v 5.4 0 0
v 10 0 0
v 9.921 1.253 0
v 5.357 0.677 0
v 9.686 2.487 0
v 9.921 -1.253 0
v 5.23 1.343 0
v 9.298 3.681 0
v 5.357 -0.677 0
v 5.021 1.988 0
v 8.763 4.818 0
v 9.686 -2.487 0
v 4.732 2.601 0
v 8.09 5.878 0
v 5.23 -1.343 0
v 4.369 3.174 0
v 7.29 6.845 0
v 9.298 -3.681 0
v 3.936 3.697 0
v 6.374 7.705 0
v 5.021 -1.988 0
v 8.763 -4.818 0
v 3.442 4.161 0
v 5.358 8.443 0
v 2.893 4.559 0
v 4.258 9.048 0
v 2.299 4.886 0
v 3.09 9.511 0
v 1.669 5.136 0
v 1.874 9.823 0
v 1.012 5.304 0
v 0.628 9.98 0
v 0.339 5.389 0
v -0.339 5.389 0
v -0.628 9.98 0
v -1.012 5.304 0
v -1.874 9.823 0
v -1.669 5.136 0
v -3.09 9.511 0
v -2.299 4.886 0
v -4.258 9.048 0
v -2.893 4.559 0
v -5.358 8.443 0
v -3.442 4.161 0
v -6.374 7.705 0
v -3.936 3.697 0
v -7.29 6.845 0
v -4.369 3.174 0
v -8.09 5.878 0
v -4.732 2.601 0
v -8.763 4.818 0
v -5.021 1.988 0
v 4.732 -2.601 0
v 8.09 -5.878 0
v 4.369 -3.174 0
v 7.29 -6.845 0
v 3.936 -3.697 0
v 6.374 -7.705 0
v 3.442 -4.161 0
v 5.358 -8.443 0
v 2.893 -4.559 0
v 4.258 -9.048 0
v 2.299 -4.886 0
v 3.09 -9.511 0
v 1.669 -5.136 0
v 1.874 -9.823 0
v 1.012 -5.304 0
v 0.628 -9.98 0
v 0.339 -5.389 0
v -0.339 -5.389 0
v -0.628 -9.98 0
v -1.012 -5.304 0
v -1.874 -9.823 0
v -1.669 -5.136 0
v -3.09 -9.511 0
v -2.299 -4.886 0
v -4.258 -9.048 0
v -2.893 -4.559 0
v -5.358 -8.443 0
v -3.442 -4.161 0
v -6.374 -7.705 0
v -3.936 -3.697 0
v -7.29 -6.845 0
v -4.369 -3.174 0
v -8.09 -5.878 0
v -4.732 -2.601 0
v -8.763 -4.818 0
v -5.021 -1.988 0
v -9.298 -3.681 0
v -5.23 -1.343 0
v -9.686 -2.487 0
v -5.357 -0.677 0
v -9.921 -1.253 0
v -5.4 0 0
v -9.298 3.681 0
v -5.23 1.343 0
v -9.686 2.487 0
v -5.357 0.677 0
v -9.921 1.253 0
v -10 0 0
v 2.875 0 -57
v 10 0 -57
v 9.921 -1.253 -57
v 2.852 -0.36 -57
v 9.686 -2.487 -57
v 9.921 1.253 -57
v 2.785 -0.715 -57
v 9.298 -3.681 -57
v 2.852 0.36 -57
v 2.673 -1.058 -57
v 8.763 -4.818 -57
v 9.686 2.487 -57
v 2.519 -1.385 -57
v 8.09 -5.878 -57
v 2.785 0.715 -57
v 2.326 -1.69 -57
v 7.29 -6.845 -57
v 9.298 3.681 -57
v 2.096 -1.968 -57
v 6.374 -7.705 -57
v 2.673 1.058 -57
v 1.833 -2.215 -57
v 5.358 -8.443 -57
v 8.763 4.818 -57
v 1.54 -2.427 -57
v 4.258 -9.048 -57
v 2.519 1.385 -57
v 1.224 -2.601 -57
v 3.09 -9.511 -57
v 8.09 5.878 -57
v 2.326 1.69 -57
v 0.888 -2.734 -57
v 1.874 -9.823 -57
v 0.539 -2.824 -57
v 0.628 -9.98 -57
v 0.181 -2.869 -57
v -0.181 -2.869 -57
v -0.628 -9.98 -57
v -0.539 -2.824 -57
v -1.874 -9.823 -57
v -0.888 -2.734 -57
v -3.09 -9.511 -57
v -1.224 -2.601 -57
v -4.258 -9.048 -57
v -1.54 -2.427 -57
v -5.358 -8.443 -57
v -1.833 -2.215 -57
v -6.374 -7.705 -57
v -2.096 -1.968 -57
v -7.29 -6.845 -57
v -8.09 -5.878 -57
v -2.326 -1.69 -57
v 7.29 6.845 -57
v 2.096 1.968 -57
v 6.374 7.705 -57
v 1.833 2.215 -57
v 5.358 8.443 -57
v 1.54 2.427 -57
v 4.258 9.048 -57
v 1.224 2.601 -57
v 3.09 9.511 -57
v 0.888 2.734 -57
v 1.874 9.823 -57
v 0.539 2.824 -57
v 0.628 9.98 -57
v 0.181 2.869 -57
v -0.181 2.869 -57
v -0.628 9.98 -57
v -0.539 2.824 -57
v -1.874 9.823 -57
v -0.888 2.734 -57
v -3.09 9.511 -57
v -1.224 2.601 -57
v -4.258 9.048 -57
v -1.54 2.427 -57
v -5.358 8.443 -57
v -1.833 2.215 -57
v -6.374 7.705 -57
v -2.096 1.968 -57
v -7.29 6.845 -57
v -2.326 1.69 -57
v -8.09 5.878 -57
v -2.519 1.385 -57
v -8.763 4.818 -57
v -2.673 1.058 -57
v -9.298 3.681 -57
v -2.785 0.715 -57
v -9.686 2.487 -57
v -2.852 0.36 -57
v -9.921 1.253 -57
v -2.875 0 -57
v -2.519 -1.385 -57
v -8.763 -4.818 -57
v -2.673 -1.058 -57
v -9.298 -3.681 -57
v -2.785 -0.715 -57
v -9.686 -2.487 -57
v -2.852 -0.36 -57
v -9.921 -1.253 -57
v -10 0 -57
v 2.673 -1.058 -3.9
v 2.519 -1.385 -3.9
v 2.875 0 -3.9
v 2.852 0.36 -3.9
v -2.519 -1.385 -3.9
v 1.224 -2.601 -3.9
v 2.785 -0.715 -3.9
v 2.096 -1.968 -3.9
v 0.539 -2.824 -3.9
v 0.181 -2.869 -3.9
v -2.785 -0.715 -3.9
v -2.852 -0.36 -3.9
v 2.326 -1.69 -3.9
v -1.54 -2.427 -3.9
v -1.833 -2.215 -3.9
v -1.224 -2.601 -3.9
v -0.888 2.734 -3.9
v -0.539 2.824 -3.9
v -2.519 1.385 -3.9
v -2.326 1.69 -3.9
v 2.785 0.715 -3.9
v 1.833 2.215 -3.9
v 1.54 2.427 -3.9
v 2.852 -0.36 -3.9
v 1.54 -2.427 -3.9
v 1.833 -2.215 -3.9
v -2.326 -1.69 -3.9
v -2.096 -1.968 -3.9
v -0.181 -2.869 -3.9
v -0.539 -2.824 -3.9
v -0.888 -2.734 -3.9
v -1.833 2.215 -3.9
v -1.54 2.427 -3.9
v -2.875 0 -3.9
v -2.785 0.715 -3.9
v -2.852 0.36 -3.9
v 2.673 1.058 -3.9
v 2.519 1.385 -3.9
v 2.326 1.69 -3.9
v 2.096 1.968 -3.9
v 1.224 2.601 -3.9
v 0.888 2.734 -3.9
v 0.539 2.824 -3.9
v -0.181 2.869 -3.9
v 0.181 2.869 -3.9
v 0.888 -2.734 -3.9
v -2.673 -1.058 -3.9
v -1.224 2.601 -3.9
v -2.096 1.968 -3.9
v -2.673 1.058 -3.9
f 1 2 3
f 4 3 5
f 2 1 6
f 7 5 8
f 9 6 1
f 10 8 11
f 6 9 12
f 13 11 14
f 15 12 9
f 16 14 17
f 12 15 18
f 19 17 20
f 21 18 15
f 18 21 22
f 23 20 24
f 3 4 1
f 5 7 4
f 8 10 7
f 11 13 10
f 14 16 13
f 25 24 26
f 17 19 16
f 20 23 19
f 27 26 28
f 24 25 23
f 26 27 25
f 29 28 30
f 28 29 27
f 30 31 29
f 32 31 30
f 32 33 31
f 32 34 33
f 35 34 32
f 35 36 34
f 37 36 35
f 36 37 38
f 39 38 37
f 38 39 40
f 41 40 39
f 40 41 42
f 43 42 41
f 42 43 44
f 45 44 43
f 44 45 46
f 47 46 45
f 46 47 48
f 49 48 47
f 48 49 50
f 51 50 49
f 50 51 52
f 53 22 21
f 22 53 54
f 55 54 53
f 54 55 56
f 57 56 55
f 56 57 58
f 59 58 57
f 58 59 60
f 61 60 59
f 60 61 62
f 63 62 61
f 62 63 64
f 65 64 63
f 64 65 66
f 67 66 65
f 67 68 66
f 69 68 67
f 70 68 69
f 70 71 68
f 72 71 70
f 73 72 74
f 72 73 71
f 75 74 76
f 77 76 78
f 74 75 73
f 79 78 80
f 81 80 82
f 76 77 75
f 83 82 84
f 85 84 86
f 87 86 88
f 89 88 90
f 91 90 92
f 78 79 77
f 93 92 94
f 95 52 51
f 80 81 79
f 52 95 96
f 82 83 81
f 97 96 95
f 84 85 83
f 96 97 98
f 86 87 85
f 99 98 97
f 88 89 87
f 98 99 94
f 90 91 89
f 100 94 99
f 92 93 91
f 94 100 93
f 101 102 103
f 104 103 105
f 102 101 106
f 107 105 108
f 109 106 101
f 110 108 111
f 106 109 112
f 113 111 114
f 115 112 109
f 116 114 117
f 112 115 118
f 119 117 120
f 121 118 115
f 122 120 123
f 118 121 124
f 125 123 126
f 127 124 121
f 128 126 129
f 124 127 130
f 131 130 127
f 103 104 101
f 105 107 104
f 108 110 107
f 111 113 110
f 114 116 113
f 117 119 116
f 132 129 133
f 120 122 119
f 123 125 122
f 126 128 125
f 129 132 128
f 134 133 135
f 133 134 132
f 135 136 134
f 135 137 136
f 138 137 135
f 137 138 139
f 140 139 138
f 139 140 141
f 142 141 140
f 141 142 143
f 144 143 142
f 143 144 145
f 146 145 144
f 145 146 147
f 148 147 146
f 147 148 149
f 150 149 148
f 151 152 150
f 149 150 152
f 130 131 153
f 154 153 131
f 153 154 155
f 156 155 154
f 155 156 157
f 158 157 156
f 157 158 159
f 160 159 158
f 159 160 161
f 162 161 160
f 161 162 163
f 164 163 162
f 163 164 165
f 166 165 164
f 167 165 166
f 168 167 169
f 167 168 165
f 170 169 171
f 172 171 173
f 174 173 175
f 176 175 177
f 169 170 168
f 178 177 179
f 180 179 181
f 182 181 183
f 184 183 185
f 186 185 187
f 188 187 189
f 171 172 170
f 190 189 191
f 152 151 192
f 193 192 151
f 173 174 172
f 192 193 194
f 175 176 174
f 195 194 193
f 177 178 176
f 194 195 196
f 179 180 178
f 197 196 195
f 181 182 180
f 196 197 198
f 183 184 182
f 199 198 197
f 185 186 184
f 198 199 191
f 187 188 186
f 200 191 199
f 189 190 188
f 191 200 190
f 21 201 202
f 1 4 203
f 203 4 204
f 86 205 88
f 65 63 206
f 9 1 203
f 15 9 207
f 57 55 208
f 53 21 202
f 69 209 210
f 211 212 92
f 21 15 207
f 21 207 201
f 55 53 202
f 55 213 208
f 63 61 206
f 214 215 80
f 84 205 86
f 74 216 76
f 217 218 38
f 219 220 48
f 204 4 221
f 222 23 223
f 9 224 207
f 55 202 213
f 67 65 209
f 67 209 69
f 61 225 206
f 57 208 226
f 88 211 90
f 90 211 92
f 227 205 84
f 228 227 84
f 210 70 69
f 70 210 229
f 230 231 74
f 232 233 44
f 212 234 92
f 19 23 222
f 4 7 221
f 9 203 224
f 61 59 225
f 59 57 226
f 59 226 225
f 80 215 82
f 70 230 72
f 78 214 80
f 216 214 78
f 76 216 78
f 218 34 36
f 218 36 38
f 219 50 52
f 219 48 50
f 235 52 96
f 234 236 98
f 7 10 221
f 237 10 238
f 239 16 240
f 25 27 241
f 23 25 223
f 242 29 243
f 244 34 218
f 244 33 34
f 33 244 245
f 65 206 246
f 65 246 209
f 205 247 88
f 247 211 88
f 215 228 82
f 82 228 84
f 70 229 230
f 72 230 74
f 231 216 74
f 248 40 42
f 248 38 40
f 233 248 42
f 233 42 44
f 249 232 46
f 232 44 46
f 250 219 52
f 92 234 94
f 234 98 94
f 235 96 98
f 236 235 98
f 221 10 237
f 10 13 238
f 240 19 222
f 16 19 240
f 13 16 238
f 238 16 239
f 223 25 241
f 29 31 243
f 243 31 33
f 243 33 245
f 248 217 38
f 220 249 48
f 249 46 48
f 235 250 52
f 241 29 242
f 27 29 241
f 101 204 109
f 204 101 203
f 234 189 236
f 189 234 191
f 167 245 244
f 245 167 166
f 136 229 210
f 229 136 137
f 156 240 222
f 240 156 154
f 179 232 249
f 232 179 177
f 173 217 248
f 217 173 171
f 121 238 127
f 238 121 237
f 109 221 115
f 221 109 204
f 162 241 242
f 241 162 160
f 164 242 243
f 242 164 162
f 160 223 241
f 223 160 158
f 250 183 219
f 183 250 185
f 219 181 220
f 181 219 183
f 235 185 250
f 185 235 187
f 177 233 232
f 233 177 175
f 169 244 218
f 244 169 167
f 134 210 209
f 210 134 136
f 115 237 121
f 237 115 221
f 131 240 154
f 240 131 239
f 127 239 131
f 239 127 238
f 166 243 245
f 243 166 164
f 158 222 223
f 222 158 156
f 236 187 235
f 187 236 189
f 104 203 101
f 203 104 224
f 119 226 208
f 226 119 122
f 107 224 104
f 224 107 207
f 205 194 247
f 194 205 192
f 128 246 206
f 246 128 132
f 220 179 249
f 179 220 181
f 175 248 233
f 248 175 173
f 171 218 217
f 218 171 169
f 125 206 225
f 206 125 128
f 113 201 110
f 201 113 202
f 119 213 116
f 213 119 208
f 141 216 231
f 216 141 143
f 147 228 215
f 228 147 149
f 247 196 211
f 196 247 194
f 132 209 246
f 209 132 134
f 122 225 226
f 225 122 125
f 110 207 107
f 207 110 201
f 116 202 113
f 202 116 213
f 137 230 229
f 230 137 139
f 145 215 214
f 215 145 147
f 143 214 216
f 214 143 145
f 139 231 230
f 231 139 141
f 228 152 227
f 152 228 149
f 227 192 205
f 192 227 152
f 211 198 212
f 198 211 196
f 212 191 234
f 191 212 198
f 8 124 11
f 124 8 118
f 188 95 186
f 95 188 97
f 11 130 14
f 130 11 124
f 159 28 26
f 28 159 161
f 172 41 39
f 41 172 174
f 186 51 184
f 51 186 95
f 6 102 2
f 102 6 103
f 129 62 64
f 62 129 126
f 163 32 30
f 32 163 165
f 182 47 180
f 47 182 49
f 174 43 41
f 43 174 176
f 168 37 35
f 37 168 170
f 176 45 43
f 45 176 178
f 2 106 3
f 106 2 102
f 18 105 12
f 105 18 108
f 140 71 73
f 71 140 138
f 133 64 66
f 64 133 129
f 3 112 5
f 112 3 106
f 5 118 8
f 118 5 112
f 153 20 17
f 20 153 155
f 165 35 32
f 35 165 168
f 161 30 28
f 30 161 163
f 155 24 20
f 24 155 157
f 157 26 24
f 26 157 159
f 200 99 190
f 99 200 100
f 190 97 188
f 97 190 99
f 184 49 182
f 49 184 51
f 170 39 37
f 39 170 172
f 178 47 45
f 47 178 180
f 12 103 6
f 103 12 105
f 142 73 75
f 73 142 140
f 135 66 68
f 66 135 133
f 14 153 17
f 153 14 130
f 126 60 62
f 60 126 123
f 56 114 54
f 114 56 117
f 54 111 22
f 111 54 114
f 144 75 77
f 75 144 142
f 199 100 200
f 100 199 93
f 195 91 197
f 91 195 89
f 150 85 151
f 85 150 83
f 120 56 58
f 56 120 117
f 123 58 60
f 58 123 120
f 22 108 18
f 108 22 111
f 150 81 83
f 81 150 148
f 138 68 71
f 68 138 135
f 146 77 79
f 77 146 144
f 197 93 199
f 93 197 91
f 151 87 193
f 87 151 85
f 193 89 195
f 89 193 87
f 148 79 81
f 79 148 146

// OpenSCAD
$fn = 50;


difference() {
	union() {
		translate(v = [0, 0, -57.0000000000]) {
			cylinder(h = 57, r = 10.0000000000);
		}
	}
	union() {
		translate(v = [0, 0, 0]) {
			rotate(a = [0, 0, 0]) {
				difference() {
					union() {
						#translate(v = [0, 0, -57.0000000000]) {
							cylinder(h = 57, r = 2.6000000000);
						}
						#translate(v = [0, 0, -3.9000000000]) {
							cylinder(h = 3.9000000000, r = 10.0000000000, r1 = 2.8750000000, r2 = 5.4000000000);
						}
						#translate(v = [0, 0, -57.0000000000]) {
							cylinder(h = 57, r = 2.8750000000);
						}
						#translate(v = [0, 0, -57.0000000000]) {
							cylinder(h = 57, r = 2.6000000000);
						}
					}
					union();
				}
			}
		}
	}
}
